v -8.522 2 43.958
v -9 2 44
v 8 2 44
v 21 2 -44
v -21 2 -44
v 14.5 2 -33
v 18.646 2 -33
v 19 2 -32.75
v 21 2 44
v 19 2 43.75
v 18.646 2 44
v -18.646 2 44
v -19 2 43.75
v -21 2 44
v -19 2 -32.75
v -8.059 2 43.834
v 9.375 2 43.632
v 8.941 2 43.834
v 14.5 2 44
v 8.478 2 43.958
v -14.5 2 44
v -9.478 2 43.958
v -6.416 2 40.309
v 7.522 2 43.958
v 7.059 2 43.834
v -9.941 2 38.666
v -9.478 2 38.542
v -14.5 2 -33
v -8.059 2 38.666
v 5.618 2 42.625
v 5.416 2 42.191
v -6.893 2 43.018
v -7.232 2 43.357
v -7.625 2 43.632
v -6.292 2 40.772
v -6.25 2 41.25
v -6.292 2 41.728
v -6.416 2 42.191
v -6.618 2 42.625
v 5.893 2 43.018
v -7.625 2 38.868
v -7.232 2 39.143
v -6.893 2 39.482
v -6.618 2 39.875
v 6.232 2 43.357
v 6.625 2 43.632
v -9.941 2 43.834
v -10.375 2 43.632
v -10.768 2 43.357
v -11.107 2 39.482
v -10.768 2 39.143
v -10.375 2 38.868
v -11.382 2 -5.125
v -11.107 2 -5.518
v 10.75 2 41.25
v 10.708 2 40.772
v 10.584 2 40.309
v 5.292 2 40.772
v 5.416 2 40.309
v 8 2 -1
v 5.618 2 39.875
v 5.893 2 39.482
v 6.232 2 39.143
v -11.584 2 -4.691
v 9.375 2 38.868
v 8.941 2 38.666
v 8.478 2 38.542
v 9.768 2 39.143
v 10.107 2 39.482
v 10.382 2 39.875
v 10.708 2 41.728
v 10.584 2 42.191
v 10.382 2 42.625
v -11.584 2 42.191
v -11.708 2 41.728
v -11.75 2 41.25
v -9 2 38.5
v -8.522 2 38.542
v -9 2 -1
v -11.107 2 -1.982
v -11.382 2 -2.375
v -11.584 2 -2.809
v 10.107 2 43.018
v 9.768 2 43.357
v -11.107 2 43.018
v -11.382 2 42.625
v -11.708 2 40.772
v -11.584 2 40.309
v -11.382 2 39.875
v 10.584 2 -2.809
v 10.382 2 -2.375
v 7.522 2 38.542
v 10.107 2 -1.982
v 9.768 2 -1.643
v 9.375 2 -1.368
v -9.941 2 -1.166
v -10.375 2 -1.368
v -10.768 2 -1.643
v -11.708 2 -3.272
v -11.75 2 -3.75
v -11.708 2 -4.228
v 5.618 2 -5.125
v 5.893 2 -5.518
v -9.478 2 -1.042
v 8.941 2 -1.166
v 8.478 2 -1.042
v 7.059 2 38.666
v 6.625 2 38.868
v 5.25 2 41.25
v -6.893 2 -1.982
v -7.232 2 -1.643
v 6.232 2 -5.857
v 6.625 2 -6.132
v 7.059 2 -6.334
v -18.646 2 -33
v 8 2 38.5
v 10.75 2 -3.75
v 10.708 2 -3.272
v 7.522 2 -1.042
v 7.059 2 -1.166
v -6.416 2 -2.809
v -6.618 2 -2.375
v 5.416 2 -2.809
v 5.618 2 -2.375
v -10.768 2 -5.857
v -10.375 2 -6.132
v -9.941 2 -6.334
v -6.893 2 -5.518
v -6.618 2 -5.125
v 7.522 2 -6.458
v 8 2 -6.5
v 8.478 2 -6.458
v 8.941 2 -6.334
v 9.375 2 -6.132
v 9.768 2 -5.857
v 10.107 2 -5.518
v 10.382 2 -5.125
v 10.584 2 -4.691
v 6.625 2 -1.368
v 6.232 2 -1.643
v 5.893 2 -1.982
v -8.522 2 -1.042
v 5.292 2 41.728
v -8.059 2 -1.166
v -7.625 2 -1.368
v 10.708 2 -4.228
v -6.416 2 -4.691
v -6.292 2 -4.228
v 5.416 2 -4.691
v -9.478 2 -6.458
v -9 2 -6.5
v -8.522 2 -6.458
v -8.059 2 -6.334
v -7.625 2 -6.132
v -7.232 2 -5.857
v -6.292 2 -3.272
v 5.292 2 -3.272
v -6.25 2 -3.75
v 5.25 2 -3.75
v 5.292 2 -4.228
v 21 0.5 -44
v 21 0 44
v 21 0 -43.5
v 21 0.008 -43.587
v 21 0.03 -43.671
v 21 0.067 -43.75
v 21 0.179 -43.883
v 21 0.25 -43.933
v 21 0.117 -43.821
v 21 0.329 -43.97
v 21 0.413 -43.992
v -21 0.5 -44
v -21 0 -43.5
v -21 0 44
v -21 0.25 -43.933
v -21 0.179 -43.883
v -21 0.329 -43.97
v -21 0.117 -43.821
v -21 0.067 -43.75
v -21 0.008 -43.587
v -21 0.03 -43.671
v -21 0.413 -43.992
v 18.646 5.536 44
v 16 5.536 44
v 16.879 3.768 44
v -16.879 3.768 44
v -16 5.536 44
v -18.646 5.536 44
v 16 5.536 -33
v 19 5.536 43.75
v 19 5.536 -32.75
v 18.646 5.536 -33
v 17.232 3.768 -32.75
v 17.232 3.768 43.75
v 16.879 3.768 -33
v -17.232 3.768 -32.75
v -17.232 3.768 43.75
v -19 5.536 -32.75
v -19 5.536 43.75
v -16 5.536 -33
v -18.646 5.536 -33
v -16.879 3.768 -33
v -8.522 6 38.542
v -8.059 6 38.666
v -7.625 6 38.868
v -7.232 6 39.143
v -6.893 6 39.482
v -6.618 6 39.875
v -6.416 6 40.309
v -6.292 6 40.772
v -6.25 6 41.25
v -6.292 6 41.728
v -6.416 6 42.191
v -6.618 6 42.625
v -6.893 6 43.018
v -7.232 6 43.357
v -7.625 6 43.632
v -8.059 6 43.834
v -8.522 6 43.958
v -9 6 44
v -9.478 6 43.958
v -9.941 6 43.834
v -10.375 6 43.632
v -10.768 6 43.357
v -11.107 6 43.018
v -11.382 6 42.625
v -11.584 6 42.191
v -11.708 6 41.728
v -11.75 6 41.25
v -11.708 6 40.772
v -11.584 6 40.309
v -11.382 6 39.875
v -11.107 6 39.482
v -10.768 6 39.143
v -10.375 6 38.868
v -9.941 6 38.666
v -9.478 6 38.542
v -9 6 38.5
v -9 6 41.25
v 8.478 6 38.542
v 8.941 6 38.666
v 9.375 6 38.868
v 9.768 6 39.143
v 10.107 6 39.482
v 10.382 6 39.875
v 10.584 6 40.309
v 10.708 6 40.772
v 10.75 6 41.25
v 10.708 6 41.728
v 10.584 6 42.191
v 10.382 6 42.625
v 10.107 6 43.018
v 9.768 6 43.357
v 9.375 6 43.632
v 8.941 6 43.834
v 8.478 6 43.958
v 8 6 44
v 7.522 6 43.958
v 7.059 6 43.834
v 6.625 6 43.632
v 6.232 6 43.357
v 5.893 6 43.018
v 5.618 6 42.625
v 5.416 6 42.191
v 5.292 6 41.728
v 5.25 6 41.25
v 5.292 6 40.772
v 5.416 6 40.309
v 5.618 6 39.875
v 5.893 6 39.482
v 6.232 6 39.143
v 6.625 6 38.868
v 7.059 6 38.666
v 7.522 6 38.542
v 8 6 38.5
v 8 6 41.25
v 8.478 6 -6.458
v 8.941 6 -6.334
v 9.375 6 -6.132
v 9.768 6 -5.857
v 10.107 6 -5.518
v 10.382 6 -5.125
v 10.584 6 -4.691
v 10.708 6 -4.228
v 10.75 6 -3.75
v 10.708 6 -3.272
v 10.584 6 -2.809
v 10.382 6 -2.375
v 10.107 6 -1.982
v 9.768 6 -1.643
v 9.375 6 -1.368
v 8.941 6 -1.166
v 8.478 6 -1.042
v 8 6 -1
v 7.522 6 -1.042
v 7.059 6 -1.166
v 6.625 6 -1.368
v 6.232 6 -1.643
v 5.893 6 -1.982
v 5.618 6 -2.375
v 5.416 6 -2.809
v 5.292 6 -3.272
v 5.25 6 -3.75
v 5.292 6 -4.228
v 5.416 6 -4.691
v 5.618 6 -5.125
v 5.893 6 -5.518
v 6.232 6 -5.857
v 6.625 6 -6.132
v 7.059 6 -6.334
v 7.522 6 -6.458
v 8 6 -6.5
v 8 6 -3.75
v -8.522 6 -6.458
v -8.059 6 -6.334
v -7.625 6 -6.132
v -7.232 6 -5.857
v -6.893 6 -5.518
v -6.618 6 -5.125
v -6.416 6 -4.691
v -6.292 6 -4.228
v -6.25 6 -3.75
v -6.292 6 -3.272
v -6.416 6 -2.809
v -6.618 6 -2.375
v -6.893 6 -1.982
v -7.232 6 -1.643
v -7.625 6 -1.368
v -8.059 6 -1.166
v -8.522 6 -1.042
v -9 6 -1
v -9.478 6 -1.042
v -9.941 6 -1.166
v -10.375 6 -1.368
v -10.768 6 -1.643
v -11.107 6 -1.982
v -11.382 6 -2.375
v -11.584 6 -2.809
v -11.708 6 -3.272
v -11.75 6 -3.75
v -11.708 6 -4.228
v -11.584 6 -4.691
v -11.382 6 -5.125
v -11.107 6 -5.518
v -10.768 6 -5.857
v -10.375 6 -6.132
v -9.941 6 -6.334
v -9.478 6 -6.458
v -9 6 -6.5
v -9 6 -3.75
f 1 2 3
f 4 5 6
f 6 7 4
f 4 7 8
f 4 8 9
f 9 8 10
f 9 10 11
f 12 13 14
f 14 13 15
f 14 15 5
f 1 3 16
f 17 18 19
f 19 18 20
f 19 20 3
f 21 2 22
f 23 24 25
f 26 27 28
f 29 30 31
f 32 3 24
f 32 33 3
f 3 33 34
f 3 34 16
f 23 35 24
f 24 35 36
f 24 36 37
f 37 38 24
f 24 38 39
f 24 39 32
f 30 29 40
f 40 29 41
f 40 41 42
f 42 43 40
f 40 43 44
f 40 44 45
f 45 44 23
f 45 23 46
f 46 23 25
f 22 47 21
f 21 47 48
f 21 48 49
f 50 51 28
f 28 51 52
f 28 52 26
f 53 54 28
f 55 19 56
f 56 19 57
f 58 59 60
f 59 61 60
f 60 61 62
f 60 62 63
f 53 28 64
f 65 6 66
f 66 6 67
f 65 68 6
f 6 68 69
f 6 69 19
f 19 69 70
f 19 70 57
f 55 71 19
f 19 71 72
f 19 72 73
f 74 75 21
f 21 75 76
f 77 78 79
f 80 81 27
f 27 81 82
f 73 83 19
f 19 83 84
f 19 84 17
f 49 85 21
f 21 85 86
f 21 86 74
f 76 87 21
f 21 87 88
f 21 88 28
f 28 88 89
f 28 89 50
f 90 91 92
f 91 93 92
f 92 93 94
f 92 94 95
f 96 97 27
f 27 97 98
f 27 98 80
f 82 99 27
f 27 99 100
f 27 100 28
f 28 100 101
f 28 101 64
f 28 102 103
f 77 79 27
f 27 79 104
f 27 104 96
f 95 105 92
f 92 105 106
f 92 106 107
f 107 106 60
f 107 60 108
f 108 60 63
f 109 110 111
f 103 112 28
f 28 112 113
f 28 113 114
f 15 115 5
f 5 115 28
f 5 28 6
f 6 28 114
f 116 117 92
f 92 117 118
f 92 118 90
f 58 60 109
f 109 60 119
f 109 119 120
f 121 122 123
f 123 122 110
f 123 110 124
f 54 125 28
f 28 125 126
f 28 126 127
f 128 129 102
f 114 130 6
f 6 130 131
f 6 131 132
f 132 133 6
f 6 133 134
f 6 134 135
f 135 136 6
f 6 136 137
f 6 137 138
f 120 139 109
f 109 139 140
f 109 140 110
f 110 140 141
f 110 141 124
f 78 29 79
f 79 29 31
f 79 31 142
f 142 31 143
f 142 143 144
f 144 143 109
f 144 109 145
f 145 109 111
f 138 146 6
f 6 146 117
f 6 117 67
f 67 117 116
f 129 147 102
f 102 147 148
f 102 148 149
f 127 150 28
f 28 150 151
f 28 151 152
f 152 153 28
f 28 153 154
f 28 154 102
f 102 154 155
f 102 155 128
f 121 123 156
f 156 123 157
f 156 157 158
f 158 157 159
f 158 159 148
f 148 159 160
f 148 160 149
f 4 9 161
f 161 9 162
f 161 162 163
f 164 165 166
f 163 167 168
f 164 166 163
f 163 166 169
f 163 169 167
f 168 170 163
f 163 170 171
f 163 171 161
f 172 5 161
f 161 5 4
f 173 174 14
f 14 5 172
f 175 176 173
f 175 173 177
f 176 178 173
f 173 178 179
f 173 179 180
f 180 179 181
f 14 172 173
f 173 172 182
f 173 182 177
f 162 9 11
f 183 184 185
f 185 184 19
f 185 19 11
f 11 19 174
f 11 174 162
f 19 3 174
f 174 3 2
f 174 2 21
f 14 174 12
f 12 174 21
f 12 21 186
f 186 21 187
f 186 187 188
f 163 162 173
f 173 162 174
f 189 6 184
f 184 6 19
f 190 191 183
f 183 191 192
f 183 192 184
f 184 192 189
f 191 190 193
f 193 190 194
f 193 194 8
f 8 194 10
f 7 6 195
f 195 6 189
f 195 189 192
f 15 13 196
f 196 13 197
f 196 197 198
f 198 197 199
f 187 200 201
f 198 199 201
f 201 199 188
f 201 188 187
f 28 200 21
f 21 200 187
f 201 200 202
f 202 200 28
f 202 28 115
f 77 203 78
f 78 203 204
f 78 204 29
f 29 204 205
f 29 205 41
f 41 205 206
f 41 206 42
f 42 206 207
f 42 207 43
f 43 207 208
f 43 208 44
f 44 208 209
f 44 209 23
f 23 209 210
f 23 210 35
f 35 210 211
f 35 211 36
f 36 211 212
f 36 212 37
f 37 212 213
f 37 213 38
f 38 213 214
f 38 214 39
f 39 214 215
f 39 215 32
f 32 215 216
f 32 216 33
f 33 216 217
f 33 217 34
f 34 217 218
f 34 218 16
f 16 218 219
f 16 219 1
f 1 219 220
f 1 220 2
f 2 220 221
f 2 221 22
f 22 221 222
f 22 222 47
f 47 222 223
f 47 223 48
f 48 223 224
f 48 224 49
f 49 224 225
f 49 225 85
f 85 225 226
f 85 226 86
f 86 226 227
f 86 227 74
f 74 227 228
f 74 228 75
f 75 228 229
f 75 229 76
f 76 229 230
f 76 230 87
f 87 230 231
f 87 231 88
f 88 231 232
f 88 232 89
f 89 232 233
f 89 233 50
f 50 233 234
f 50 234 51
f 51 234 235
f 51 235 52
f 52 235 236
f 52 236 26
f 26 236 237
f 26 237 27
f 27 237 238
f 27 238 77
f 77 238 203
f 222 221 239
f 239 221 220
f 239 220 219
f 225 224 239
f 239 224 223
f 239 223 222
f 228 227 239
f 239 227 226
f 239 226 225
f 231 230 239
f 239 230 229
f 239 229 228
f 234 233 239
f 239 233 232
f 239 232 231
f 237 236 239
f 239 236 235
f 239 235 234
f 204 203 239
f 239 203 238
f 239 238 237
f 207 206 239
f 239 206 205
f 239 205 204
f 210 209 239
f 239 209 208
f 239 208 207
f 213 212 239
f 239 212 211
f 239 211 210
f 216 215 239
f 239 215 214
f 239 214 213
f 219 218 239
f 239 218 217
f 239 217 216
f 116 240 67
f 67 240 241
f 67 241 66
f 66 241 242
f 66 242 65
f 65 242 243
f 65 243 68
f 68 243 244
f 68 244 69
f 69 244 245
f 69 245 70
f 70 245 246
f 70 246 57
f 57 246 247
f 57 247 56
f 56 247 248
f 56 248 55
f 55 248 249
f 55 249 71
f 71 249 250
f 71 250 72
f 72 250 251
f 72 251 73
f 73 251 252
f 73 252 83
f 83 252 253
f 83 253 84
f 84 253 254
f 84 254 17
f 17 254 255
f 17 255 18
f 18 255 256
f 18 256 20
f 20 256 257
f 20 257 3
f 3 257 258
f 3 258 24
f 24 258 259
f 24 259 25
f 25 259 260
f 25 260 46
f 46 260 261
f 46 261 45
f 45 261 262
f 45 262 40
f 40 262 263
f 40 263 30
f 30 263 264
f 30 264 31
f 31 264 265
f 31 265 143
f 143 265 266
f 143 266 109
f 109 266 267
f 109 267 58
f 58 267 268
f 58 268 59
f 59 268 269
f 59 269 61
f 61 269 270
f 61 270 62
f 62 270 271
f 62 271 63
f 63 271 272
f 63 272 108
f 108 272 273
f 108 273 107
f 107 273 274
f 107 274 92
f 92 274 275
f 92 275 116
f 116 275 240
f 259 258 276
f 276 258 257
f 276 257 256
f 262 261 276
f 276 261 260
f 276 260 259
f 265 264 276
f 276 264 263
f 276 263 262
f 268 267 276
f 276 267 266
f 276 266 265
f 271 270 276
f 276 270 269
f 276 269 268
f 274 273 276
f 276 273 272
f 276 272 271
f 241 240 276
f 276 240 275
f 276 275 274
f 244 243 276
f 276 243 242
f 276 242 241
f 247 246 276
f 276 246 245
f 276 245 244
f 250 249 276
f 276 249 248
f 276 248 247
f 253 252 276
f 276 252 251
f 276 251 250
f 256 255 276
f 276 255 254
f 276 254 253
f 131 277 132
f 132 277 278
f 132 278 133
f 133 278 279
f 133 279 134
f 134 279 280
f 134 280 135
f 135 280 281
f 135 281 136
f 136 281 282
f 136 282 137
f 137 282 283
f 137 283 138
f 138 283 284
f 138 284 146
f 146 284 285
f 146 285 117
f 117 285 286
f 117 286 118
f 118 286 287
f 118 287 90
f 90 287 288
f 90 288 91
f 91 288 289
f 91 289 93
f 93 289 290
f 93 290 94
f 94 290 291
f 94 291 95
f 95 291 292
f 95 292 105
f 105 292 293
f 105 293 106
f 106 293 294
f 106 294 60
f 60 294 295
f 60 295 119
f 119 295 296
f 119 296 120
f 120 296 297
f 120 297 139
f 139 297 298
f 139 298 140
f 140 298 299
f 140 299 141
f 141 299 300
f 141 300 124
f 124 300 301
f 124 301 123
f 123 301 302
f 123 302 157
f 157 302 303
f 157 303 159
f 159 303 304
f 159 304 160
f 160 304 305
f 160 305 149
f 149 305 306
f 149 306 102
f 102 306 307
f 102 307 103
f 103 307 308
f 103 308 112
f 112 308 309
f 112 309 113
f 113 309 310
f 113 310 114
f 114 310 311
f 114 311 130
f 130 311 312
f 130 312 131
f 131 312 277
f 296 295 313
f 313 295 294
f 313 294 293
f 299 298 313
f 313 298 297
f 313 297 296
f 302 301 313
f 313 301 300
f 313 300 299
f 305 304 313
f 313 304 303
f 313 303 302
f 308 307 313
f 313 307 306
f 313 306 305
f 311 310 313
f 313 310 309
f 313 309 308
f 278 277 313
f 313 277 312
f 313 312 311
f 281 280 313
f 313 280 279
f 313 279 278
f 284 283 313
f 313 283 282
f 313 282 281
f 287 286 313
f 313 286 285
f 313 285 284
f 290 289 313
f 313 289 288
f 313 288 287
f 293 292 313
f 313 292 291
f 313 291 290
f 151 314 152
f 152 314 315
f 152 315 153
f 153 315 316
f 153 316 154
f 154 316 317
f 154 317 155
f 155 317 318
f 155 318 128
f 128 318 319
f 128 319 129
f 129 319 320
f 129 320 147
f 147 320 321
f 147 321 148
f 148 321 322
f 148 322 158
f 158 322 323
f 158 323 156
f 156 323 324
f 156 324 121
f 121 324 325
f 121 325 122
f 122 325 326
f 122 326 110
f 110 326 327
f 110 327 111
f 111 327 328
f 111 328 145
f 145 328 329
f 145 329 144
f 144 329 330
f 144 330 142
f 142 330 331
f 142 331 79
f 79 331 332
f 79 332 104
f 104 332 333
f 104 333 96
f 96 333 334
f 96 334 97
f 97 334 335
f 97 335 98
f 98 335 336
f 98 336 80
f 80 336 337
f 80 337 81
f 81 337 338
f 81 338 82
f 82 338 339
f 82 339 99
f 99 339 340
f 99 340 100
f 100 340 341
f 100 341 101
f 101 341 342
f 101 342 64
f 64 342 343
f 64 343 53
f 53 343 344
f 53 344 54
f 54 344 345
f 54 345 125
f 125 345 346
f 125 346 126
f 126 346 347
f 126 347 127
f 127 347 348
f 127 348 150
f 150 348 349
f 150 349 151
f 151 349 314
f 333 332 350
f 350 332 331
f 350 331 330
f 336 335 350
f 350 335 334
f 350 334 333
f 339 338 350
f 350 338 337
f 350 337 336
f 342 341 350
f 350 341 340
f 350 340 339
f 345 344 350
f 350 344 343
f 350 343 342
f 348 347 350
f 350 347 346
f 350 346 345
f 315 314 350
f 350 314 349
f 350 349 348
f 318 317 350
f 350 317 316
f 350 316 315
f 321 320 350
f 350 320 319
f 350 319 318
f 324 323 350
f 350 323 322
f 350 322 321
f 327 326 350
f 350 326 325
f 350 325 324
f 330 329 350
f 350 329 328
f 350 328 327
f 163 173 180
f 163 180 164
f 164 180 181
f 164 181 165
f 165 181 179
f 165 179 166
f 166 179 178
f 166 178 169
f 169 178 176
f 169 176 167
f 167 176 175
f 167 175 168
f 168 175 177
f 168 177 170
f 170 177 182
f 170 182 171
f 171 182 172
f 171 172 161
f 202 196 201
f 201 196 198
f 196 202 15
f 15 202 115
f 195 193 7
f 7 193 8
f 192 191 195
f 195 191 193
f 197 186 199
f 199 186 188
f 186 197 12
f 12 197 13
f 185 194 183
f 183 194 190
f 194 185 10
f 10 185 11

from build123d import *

# Parameters (mm, degrees)
SKETCH1_W           = 42
SKETCH1_H           = 88
BOSS_EXTRUDE1_DEPTH = 2
BOSS_EXTRUDE2_DEPTH = 77
SKETCH3_R           = 2.75
BOSS_EXTRUDE3_DEPTH = 4
FILLET1_R           = 0.5
CHAMFER3_SIZE       = 0.25


with BuildPart() as part:
    # Sketch1 → Boss-Extrude1 (new body)
    with BuildSketch(Plane(origin=(0, 0, 0), x_dir=(1, 0, 0), z_dir=(0, 1, 0))):
        Rectangle(SKETCH1_W, SKETCH1_H)
    extrude(amount=BOSS_EXTRUDE1_DEPTH)

    # Sketch2 → Boss-Extrude2 (add)
    with BuildSketch(Plane.XY.offset(44)):
        Polygon((14.5, 2), (16, 5.535533906), (19, 5.535533906), (17.232233047, 3.767766953), (19, 2), align=None)
    boss_extrude2 = extrude(amount=-BOSS_EXTRUDE2_DEPTH)

    # Mirror1: Boss-Extrude2 across plane
    add(boss_extrude2.mirror(Plane(origin=(0, 0, 0), x_dir=(0, 0, 1), z_dir=(1, 0, 0))))

    # Sketch3 → Boss-Extrude3 (add)
    with BuildSketch(Plane(origin=(0, 2, 0), x_dir=(1, 0, 0), z_dir=(0, 1, 0))):
        with Locations(Location((-9, -41.25, 0), (0, 0, 270))):
            Circle(SKETCH3_R)
        with Locations(Location((8, -41.25, 0), (0, 0, 270))):
            Circle(SKETCH3_R)
        with Locations(Location((8, 3.75, 0), (0, 0, 270))):
            Circle(SKETCH3_R)
        with Locations(Location((-9, 3.75, 0), (0, 0, 270))):
            Circle(SKETCH3_R)
    extrude(amount=BOSS_EXTRUDE3_DEPTH)

    # Fillet1
    fillet1_edges = [part.edges().sort_by_distance(p)[0] for p in [
        (0, 0, -44),
    ]]
    fillet(fillet1_edges, radius=FILLET1_R)

    # Chamfer3
    chamfer3_edges = [part.edges().sort_by_distance(p)[0] for p in [
        (18.116116524, 4.651650429, -33),
        (18.116116524, 2.883883476, -33),
        (18.116116524, 2.883883476, 44),
        (18.116116524, 4.651650429, 44),
        (-18.116116524, 2.883883476, 44),
        (-18.116116524, 4.651650429, 44),
        (-18.116116524, 2.883883476, -33),
        (-18.116116524, 4.651650429, -33),
    ]]
    chamfer(chamfer3_edges, length=CHAMFER3_SIZE)


solid = part.part
